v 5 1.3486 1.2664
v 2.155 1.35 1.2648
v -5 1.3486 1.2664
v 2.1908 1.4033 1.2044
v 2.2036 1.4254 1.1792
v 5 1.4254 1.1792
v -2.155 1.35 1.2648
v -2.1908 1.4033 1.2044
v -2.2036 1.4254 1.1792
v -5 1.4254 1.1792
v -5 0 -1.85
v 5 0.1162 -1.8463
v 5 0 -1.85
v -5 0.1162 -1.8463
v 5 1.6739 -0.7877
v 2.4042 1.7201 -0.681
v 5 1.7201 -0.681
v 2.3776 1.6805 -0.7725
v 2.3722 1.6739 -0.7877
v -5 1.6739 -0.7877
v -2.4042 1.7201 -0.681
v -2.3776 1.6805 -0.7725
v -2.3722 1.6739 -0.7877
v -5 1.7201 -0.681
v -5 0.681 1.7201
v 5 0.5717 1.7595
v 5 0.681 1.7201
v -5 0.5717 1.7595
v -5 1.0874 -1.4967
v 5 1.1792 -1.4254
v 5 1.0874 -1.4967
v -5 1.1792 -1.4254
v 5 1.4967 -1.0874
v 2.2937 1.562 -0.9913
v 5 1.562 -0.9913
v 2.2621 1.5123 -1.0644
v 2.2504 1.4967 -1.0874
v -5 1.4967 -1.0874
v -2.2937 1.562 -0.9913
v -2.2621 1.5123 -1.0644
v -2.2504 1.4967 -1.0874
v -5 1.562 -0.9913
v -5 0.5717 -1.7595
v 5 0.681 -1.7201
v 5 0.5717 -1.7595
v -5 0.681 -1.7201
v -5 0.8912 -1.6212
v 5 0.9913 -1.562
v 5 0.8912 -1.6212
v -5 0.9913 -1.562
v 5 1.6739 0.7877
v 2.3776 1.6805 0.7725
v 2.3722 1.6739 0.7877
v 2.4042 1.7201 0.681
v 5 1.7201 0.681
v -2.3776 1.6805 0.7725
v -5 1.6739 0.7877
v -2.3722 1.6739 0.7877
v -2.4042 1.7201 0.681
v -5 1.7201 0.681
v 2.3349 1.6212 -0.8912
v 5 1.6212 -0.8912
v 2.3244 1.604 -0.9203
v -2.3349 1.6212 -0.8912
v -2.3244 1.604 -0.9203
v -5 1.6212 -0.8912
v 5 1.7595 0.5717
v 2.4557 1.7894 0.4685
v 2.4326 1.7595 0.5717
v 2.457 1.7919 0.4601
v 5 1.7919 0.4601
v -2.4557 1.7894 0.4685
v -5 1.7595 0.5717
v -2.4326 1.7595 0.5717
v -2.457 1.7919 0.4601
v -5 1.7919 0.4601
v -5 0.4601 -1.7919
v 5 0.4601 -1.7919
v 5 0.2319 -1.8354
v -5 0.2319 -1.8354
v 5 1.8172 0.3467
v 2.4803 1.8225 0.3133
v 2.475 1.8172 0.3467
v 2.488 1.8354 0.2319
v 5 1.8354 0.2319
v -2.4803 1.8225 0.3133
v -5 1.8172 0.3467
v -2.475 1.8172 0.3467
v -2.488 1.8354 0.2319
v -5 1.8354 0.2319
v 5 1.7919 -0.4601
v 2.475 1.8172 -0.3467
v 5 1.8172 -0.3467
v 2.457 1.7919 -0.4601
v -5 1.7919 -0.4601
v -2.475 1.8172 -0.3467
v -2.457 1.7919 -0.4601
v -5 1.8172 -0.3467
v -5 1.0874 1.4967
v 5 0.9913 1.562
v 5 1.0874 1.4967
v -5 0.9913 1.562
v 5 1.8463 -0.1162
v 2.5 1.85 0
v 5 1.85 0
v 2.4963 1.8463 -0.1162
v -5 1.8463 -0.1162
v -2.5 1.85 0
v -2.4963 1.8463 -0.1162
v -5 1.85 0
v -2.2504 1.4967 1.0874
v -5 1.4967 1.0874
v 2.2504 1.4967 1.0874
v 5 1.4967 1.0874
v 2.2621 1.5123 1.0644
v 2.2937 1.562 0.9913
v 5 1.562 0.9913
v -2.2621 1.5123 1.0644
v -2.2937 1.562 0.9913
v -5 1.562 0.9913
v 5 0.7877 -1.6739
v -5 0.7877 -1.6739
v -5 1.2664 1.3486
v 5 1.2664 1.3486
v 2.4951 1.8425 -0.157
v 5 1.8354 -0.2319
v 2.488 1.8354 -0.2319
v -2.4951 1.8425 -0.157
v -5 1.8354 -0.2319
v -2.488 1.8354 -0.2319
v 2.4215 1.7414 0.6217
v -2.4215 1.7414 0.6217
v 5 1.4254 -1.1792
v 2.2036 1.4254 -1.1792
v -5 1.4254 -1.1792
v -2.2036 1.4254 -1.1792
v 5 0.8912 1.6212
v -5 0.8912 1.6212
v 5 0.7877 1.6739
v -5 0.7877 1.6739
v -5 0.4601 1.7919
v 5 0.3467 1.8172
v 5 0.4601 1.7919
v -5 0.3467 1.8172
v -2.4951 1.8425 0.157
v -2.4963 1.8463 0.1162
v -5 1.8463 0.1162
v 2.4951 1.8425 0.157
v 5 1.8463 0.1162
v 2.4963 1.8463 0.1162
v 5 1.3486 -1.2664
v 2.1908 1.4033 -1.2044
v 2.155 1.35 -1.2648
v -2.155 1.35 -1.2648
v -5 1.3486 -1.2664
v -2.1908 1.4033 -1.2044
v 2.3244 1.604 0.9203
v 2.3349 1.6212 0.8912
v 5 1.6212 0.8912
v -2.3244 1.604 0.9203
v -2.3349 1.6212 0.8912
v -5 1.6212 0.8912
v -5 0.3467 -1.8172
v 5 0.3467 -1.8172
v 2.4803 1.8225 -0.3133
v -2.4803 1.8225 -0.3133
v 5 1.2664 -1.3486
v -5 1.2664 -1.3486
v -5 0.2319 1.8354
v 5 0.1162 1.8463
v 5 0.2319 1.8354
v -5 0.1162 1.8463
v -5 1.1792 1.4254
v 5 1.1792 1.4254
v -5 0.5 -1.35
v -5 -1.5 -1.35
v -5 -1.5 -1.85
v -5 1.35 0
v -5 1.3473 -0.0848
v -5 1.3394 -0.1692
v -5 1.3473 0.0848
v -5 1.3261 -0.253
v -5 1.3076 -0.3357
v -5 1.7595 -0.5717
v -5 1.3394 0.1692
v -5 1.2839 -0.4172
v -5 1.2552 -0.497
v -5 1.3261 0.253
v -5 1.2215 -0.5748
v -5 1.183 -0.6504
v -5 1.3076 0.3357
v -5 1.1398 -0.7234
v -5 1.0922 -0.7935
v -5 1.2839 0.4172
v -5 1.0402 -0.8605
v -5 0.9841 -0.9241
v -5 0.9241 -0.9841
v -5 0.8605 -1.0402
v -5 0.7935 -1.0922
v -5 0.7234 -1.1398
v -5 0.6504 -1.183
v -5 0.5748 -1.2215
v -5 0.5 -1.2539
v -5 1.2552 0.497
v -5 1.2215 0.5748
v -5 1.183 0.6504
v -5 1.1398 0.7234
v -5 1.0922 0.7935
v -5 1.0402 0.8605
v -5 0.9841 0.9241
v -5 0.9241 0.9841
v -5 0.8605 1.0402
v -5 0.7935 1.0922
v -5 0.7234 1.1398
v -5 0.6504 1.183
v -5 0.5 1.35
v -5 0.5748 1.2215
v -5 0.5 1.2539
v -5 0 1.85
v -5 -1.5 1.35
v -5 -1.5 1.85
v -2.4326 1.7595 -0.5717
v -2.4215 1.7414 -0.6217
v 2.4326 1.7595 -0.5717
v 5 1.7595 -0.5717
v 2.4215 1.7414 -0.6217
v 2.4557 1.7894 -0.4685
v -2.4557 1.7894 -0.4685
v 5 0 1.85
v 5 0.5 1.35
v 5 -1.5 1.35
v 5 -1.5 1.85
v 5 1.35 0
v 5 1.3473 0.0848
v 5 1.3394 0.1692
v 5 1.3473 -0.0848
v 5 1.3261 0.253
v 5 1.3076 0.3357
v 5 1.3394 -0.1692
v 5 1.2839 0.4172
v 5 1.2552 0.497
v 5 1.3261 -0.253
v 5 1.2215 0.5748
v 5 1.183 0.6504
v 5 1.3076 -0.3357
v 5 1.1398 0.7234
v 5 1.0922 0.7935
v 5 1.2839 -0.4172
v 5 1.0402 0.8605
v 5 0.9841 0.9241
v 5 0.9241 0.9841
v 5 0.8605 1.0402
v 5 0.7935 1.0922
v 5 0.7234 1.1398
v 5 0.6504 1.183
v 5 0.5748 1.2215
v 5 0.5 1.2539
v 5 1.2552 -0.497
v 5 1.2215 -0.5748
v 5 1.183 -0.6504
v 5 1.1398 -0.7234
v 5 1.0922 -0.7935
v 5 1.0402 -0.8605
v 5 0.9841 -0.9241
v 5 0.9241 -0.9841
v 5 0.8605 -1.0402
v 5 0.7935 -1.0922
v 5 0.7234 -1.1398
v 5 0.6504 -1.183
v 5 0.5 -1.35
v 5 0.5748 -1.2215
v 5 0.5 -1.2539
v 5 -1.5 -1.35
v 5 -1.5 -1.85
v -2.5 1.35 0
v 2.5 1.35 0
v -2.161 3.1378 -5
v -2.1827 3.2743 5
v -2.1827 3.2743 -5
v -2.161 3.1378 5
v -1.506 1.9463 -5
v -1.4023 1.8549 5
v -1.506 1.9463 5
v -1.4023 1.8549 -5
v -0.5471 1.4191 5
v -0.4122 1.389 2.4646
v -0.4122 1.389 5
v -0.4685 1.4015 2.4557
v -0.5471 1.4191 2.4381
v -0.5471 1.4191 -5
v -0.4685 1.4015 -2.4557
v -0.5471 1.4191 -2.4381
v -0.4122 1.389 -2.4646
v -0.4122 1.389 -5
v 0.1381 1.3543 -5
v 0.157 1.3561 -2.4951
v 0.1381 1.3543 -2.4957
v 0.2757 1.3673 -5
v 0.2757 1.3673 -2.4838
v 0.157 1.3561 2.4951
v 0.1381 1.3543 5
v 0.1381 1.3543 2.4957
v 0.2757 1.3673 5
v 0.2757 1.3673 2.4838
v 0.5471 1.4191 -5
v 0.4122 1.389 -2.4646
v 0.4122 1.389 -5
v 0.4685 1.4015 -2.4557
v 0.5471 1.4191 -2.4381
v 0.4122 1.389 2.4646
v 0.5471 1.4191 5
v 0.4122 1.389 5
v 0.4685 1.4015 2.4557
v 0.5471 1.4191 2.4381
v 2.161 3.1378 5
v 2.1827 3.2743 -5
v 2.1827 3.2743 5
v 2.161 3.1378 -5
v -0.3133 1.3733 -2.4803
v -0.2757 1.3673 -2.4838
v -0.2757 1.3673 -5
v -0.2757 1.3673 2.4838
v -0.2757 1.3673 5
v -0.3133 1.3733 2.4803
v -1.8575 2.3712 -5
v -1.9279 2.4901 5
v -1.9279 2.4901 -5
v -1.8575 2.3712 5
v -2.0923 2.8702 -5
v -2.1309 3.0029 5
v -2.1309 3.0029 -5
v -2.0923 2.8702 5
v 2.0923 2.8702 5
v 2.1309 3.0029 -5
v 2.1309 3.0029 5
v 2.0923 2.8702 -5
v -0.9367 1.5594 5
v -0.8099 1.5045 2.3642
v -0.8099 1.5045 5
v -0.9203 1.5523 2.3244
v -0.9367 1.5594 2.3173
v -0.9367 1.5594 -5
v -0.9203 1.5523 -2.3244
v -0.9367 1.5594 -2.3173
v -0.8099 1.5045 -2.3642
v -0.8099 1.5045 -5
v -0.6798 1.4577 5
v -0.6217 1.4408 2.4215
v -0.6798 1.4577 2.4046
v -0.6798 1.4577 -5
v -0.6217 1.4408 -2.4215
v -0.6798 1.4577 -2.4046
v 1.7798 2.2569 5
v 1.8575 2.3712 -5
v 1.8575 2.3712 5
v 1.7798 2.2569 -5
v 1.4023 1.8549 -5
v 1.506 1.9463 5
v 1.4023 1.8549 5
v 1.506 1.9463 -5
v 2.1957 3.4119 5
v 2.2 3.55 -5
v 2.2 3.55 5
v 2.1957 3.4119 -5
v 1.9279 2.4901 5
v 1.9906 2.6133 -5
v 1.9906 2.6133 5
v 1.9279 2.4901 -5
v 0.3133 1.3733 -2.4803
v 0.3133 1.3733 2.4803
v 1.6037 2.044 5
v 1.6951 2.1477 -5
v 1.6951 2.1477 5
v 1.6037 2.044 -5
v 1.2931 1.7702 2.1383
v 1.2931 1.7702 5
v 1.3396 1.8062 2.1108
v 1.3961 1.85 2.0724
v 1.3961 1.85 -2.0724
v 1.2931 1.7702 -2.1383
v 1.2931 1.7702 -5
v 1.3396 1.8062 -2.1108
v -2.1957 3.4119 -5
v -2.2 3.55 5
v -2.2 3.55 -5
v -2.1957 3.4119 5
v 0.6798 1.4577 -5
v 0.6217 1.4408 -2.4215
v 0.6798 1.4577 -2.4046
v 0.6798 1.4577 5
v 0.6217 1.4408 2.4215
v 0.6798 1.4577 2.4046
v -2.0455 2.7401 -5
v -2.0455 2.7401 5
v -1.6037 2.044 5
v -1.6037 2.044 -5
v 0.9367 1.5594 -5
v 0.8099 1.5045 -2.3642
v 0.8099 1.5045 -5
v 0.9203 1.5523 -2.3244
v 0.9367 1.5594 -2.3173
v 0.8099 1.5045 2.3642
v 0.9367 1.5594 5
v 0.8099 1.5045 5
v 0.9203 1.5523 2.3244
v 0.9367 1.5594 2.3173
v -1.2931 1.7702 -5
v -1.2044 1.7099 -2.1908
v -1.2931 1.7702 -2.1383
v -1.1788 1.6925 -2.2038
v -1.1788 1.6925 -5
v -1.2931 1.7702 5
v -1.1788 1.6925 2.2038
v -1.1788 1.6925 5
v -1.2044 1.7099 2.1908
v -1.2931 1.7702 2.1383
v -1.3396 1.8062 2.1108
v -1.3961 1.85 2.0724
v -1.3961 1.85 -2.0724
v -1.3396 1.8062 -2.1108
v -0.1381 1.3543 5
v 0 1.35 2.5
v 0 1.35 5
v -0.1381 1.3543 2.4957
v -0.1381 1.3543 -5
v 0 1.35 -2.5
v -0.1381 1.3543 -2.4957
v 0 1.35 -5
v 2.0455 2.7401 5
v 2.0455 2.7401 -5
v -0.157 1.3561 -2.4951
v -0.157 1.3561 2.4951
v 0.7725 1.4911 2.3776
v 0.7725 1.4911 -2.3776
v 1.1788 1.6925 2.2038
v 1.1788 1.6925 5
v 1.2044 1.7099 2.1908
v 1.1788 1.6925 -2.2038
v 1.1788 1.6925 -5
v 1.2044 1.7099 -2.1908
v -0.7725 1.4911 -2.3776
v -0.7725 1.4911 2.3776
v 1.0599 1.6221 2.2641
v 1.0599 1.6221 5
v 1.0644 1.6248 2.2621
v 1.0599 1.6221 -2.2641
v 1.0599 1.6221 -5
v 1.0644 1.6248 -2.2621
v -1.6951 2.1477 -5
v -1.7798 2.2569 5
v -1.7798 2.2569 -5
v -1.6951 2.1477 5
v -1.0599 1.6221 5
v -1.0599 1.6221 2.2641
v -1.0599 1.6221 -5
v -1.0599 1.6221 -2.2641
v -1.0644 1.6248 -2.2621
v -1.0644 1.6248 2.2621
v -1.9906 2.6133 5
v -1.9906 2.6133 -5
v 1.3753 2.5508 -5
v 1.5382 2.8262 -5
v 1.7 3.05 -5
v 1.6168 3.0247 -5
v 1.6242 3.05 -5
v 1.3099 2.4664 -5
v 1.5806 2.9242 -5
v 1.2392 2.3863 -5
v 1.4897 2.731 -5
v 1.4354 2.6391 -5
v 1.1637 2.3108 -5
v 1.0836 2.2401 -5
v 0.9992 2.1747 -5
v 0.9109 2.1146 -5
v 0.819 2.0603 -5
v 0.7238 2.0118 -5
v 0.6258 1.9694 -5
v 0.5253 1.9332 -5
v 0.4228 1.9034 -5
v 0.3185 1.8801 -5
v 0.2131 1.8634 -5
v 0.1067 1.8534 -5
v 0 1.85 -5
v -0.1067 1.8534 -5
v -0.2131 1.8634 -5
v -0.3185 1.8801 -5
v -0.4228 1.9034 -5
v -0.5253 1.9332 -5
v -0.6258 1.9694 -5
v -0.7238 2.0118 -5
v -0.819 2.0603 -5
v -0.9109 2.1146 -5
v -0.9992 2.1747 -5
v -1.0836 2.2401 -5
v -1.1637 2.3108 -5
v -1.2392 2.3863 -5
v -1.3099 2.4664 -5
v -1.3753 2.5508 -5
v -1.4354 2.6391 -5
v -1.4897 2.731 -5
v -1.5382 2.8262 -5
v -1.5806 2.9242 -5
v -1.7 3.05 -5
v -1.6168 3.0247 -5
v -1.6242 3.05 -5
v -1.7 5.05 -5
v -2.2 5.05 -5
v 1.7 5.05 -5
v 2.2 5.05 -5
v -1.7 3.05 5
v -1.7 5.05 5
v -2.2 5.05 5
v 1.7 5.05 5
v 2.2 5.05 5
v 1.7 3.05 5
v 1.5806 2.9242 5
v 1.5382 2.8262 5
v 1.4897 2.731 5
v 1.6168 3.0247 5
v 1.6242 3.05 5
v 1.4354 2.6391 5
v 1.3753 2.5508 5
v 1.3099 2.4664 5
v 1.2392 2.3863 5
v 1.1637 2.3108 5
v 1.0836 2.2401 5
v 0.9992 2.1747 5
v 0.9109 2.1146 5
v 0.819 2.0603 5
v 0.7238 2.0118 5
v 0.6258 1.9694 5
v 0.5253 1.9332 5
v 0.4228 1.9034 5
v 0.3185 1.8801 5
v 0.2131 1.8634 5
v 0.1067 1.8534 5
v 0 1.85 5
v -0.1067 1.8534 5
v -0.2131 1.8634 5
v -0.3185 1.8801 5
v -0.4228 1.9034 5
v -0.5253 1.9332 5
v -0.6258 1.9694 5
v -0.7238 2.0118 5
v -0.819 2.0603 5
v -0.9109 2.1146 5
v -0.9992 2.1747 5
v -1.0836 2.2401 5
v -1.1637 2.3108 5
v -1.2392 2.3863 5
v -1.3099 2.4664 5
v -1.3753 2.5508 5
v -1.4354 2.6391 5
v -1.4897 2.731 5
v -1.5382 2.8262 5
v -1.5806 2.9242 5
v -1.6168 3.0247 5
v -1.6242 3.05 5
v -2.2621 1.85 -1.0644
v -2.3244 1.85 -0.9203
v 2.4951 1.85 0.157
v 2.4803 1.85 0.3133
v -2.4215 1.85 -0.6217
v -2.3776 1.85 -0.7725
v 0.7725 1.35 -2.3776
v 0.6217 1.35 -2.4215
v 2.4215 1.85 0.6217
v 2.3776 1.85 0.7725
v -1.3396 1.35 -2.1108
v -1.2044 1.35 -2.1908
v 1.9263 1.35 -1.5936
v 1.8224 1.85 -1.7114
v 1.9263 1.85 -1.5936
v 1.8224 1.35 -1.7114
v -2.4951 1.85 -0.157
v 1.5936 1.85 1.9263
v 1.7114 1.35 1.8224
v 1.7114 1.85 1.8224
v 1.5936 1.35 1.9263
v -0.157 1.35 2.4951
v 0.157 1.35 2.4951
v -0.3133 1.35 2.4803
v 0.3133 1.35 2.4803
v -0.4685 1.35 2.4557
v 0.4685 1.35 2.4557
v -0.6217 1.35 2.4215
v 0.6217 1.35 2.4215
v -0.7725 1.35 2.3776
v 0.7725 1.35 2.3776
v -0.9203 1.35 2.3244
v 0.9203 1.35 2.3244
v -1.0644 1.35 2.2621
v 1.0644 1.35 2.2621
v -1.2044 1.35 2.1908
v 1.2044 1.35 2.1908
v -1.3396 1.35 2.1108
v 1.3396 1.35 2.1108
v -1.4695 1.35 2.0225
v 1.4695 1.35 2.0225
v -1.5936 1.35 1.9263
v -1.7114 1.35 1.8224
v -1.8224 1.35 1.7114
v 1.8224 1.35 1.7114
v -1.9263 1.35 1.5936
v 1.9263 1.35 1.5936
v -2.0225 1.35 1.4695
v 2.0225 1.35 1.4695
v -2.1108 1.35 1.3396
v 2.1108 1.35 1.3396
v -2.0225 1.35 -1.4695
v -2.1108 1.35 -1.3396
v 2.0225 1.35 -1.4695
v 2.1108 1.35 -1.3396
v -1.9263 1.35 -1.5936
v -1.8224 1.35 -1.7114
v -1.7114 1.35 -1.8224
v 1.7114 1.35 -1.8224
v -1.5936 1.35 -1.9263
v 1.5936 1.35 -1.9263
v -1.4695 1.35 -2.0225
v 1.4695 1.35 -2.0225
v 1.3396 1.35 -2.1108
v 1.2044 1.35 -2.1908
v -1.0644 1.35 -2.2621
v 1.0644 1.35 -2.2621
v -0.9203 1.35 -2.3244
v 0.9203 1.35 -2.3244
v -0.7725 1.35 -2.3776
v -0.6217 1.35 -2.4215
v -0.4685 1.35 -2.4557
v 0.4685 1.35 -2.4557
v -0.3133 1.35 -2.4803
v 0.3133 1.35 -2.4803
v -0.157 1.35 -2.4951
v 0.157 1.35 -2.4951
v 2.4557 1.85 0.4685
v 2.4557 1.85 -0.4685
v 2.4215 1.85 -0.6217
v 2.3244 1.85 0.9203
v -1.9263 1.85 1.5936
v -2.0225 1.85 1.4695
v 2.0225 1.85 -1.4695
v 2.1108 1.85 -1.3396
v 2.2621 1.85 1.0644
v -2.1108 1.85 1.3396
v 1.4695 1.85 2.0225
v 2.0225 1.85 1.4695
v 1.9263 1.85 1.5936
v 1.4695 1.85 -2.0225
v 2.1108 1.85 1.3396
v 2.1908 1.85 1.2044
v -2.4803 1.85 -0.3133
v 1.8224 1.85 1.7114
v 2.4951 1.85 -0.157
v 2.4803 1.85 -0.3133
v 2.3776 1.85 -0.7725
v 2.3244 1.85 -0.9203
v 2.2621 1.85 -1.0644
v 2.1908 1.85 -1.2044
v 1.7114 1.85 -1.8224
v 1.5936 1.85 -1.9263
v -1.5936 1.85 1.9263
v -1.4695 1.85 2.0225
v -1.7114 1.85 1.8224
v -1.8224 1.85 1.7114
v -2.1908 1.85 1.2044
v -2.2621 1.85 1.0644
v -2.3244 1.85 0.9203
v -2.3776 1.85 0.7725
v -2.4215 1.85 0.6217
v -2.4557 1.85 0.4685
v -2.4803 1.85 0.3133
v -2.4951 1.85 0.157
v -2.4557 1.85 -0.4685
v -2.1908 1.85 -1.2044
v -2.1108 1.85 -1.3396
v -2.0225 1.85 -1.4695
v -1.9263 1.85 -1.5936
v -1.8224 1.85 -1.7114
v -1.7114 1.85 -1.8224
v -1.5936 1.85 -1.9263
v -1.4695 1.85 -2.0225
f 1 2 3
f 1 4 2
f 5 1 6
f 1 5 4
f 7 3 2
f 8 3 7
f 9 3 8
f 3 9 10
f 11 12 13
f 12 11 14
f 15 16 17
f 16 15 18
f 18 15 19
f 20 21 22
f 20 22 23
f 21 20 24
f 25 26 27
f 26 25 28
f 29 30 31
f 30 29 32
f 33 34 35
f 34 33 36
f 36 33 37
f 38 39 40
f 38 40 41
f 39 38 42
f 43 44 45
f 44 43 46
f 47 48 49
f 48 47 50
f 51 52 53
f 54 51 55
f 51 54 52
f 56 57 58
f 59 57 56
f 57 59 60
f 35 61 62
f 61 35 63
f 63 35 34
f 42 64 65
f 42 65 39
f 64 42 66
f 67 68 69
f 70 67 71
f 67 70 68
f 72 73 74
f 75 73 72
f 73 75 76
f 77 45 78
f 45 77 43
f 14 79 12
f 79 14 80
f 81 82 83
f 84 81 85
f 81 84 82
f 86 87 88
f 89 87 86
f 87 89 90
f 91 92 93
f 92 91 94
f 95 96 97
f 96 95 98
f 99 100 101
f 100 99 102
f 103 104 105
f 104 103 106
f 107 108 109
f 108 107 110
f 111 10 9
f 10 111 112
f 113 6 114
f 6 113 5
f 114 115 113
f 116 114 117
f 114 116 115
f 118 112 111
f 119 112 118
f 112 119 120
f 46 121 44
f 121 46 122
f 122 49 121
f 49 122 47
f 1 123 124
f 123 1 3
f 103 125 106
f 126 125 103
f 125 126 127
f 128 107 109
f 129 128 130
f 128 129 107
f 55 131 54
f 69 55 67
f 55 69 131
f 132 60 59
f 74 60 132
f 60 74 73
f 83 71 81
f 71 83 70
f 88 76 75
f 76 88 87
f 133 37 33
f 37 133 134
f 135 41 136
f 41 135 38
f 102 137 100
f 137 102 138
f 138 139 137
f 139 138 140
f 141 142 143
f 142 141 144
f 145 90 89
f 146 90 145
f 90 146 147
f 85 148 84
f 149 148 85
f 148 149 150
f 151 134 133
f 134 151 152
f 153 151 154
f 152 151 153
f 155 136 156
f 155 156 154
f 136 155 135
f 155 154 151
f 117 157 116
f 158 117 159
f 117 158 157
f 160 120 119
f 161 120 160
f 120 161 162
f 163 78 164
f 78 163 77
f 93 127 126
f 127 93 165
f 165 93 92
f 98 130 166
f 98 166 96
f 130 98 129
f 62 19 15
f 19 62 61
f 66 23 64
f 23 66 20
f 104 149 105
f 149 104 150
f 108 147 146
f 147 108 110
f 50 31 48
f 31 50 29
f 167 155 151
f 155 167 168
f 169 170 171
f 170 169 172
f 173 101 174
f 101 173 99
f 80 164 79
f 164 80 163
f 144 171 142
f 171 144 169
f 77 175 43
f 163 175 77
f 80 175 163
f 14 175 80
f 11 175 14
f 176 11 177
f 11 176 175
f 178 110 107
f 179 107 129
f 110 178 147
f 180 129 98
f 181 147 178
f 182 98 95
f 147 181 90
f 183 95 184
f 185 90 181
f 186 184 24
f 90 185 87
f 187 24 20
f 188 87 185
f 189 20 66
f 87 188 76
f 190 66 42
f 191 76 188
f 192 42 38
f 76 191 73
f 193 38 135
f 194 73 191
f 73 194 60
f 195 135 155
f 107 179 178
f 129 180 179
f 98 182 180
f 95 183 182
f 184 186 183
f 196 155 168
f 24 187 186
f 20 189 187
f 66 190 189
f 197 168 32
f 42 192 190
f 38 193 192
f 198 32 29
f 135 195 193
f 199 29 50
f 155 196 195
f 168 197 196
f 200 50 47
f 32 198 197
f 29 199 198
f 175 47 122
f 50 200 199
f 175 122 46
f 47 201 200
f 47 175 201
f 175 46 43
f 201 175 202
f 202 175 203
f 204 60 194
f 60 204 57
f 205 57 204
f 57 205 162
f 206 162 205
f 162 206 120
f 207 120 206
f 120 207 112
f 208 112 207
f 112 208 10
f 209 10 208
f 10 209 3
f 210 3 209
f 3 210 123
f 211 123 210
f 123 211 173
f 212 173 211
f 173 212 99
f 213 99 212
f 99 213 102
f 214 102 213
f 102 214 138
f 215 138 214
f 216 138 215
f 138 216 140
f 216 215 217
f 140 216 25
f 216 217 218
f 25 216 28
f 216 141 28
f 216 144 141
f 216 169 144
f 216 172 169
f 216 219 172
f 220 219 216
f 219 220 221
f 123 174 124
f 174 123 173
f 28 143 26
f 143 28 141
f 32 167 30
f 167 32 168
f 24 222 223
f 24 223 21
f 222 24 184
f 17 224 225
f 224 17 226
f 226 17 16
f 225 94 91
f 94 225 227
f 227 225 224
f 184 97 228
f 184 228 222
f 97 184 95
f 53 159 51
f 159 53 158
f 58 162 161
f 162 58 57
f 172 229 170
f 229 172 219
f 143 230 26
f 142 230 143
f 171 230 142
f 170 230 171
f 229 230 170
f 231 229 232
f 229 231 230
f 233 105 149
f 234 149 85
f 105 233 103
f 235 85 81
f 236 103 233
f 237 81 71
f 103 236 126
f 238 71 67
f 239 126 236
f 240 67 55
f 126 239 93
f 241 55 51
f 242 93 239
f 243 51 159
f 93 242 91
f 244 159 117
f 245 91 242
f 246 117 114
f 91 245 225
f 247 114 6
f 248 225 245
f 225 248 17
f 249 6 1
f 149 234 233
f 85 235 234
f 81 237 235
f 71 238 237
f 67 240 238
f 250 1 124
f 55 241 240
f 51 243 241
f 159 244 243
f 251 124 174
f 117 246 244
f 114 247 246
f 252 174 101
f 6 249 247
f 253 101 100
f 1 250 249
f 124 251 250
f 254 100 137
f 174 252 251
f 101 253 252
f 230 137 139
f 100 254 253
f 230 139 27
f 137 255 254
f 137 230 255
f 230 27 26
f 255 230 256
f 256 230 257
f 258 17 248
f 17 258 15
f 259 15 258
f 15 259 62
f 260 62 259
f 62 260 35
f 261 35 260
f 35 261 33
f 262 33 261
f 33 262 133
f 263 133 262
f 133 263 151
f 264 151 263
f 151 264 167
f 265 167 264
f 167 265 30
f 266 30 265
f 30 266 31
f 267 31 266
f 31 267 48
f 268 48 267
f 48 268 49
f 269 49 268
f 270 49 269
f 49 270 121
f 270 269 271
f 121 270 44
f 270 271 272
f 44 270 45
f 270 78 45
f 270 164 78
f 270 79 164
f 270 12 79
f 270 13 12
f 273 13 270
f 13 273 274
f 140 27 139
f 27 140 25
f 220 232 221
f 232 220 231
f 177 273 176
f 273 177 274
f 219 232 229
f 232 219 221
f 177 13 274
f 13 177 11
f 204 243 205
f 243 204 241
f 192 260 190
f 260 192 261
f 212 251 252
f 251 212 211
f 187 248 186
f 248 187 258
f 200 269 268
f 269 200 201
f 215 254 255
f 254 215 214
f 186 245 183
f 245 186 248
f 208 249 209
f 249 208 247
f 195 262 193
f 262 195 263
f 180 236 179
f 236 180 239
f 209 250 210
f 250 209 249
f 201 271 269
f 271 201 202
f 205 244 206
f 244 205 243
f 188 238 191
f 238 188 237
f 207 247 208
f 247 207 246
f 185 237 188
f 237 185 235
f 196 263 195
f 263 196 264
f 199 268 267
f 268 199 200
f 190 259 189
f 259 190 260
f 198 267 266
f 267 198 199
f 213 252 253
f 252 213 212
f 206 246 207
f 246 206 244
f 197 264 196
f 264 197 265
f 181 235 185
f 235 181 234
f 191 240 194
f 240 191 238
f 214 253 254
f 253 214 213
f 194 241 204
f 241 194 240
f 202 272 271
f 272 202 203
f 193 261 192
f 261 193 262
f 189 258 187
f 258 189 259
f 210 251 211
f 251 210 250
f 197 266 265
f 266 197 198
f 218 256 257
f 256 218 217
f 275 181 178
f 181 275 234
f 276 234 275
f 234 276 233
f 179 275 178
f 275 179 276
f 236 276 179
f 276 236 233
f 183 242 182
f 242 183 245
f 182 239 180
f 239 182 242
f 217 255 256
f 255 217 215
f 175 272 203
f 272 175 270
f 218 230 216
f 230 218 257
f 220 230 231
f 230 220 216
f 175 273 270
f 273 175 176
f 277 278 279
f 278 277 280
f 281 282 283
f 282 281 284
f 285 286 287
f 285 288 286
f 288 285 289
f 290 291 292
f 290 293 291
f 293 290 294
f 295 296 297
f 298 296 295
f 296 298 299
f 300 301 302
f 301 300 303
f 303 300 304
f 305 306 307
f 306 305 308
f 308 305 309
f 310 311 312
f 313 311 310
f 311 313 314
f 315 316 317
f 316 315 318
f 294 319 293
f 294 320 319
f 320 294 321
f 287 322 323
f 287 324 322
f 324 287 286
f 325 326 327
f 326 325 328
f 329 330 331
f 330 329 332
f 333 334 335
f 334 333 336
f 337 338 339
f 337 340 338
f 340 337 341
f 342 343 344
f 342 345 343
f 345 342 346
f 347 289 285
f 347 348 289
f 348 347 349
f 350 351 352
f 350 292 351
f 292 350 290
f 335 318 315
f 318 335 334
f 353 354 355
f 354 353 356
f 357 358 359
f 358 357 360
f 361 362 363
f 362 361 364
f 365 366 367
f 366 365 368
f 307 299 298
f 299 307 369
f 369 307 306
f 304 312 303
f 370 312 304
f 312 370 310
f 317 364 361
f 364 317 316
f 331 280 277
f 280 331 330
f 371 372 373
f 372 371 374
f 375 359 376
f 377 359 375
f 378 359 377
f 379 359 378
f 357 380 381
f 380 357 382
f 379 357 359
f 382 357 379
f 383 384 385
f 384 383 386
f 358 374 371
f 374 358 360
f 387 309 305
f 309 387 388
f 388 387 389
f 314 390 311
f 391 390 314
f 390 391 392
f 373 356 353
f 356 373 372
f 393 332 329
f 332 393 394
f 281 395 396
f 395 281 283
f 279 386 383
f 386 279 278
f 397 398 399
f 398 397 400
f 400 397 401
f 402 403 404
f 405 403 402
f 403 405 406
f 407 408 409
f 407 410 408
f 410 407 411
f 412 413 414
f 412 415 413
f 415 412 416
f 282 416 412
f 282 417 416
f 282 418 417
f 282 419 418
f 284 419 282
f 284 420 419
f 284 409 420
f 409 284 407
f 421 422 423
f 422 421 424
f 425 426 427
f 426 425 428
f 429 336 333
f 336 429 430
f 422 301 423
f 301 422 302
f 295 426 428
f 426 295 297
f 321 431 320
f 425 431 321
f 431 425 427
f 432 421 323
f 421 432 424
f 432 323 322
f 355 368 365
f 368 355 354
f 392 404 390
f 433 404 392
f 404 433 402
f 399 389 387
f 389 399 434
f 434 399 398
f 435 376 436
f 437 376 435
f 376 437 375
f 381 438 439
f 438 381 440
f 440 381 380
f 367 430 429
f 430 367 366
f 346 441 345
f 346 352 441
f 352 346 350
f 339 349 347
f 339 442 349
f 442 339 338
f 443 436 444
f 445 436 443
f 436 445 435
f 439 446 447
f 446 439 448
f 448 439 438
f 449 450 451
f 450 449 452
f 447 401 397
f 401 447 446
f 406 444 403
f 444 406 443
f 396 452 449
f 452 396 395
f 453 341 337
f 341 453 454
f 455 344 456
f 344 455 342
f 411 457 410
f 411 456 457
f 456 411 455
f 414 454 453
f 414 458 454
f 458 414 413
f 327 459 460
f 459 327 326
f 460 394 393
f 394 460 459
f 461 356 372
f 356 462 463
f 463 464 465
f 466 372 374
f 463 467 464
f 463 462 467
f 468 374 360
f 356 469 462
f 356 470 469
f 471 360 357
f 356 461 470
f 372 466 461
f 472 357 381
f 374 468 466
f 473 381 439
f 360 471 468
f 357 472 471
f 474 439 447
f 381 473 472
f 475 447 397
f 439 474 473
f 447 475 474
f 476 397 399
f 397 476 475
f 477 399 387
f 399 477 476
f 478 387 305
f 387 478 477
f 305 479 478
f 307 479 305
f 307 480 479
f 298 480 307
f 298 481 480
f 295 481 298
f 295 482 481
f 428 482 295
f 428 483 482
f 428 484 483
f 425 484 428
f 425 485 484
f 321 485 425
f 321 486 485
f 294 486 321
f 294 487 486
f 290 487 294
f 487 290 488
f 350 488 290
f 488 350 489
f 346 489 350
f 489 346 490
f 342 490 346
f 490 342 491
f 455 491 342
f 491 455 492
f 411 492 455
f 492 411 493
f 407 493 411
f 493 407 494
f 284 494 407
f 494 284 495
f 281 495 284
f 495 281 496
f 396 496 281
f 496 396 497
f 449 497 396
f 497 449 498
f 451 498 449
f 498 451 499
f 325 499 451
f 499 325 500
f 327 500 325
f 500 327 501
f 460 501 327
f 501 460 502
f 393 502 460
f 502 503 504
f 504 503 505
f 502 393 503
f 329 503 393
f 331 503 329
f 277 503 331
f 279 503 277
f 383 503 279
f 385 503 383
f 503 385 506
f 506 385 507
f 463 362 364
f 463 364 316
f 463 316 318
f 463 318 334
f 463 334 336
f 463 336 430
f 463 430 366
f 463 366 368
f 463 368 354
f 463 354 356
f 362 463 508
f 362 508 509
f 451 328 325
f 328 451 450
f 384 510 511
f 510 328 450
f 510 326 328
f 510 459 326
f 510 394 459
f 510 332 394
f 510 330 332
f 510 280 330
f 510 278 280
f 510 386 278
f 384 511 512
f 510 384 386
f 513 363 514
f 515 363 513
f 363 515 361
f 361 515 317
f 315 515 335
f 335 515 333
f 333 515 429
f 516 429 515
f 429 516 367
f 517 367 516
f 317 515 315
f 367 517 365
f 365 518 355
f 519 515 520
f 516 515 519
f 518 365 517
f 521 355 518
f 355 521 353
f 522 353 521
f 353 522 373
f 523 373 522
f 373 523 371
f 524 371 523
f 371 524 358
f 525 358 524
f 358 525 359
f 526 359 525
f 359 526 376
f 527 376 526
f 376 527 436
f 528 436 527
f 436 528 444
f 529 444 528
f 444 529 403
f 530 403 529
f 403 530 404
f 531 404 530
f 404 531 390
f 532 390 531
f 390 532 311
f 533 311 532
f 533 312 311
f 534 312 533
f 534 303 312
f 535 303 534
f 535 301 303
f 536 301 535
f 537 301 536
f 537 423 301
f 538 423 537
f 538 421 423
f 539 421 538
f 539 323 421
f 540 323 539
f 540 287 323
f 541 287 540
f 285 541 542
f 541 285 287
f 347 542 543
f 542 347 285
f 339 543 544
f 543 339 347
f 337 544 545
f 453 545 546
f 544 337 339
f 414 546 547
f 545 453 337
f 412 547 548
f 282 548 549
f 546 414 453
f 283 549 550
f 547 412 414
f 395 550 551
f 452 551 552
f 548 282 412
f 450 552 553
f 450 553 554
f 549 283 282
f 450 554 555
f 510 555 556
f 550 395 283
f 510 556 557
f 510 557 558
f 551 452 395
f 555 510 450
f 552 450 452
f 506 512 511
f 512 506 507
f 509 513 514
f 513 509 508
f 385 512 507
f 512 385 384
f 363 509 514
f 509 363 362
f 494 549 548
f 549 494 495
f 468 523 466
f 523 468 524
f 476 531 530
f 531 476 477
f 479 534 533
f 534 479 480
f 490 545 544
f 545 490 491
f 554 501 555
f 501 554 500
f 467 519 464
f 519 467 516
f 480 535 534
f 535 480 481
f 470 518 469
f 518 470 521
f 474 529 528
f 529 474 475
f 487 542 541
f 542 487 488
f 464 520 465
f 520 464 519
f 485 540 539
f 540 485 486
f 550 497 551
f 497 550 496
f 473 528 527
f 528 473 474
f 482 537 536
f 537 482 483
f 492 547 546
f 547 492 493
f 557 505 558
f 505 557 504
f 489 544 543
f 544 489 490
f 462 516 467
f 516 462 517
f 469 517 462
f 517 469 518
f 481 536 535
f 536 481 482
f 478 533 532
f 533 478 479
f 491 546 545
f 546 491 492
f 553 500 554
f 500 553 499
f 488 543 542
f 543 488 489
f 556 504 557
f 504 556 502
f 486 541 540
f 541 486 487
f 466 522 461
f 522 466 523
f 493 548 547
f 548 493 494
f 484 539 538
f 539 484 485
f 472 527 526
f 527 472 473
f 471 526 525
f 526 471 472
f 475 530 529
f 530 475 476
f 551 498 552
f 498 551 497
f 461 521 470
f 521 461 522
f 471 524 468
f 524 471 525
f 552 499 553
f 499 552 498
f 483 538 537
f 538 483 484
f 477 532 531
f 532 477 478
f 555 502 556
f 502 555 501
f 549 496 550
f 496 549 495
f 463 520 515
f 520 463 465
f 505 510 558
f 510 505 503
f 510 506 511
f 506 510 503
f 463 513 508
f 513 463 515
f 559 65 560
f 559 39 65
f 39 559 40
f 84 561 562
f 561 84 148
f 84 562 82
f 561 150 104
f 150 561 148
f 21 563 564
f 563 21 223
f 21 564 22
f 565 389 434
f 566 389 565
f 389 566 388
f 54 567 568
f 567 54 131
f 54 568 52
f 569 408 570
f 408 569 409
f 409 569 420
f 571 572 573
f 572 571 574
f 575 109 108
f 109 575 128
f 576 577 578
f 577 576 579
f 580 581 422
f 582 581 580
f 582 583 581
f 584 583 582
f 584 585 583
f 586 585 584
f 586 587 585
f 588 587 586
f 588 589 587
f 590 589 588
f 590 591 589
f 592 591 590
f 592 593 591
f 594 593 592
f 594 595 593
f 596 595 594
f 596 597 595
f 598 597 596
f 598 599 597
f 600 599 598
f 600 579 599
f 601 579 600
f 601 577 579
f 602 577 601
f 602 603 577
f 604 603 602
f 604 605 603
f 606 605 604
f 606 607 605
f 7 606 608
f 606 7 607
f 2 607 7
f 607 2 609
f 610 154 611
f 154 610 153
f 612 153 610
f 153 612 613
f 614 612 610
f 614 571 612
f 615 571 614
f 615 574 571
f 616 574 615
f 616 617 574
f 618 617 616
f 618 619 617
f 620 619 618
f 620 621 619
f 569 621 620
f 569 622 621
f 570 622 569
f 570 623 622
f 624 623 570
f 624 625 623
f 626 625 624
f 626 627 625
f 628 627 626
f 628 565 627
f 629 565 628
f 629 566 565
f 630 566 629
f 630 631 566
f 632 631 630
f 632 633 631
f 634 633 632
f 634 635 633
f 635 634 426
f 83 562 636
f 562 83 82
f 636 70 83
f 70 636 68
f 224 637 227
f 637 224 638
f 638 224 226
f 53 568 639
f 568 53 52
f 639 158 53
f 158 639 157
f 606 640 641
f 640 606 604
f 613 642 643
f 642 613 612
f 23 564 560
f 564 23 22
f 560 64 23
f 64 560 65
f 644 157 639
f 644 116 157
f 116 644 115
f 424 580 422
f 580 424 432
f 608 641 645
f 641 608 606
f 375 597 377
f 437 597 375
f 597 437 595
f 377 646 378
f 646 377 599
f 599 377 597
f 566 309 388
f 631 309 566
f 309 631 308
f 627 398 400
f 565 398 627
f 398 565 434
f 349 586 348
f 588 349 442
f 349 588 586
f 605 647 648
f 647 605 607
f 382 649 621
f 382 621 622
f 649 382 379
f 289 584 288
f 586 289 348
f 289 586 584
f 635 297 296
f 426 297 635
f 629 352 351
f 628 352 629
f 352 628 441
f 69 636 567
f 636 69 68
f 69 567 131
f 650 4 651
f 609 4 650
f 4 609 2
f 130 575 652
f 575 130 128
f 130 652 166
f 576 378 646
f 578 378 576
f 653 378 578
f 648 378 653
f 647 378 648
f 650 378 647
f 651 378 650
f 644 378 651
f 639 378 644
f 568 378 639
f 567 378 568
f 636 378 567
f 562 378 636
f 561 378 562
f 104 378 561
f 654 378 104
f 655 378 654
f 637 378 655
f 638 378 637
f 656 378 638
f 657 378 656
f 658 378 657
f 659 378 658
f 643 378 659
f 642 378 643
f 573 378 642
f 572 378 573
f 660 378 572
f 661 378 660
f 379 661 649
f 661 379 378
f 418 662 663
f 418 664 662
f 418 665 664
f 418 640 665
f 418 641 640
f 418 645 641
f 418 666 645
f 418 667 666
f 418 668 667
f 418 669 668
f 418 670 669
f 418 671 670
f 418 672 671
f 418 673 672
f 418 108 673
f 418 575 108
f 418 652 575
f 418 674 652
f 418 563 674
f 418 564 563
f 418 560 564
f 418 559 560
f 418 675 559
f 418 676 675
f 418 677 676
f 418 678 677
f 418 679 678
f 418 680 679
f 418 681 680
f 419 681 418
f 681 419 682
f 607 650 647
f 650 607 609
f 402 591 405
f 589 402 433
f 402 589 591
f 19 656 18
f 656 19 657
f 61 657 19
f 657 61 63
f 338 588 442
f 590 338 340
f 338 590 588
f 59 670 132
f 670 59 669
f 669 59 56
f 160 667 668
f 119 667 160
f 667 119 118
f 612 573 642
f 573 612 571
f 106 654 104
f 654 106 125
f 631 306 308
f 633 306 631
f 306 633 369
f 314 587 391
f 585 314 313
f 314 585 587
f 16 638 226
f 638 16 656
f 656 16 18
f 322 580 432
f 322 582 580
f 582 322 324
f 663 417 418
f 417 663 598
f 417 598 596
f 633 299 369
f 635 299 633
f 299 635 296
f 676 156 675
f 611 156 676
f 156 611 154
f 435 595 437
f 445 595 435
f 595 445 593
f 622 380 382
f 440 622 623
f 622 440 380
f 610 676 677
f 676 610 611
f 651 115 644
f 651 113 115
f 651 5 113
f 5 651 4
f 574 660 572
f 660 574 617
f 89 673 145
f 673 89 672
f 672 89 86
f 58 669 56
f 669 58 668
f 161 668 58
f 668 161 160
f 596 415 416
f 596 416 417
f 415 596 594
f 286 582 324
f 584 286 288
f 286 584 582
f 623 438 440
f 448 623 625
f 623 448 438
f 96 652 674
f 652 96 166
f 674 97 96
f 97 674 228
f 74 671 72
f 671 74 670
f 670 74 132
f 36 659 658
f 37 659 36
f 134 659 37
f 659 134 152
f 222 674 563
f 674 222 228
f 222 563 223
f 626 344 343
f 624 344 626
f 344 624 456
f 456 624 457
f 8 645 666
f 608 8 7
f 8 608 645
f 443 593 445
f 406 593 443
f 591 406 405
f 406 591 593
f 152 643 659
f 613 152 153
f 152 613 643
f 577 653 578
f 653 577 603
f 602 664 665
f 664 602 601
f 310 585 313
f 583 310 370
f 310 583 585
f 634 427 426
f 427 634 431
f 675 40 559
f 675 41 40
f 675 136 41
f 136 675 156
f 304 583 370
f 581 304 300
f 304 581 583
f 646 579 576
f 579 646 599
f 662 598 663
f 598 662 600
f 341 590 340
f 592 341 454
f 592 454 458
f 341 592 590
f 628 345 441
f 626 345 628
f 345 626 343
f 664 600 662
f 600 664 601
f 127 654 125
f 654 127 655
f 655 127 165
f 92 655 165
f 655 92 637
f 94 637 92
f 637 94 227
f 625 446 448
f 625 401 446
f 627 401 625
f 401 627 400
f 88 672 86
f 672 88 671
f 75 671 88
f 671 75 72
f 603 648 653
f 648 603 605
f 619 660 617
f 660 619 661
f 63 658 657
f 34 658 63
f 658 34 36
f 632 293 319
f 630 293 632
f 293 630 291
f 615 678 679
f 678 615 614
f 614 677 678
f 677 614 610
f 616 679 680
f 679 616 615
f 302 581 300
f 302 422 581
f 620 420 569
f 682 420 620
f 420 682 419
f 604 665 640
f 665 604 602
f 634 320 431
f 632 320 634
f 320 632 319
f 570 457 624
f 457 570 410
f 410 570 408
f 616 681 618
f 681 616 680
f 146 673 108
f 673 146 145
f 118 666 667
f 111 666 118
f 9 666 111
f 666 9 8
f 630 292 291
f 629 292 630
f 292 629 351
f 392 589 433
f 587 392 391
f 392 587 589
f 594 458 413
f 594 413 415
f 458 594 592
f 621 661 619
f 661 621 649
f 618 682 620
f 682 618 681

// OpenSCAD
/**
 * Support Perche Astrolab
 */

module horizontalInside () { 
  diam = 2.7;
  union() {
     rotate([0, 90, 0]) {
       translate([0, 0, 0]) {
         cylinder(h=12, r=(diam / 2), center=true, $fn=100);
       }
     }
     rotate([90, 0, 0]) {
       translate([0, 0, 2.5]) {
         cube([12, diam, 6], center=true);
       }
     }
  }
}

module horizontalOutside () { 
  diam = 3.7;
  cubeDepth = 1.5;
  union() {  
     rotate([0, 90, 0]) {
       translate([0, 0, 0]) {
         cylinder(h=10, r=(diam / 2), center=true, $fn=100);
       }
     }
     rotate([90, 0, 0]) {
       translate([0, 0, cubeDepth / 2]) {
         cube([10, diam, cubeDepth], center=true);
       }
     }
  }
}
 
module verticalInside () { 
  diam = 3.4;
  union() {
     rotate([0, 90, 0]) {
       translate([0, 0, 0]) {
         cylinder(h=12, r=(diam / 2), center=true, $fn=100);
       }
     }
     rotate([90, 0, 0]) {
       translate([0, 0, 2.5]) {
         cube([12, diam, 6], center=true);
       }
     }
  }
}

module verticalOutside () { 
  diam = 4.4;
  cubeDepth = 1.5;
  union() {  
     rotate([0, 90, 0]) {
       translate([0, 0, 0]) {
         cylinder(h=10, r=(diam / 2), center=true, $fn=100);
       }
     }
     rotate([90, 0, 0]) {
       translate([0, 0, cubeDepth / 2]) {
         cube([10, diam, cubeDepth], center=true);
       }
     }
  }
}

union() {

  difference() {
    horizontalOutside();
    horizontalInside();
  }

  rotate([0, 90, 180]) {
    translate([0, -3.55, 0]) {
      difference() {
        verticalOutside();
        verticalInside();
      }
    }
  }
  
  rotate([90, 0, 0]) {
    translate([0, 0, -1.6]) {
      cylinder(h=0.5, r=(5 / 2), center=true, $fn=100);
    }
  }
}
